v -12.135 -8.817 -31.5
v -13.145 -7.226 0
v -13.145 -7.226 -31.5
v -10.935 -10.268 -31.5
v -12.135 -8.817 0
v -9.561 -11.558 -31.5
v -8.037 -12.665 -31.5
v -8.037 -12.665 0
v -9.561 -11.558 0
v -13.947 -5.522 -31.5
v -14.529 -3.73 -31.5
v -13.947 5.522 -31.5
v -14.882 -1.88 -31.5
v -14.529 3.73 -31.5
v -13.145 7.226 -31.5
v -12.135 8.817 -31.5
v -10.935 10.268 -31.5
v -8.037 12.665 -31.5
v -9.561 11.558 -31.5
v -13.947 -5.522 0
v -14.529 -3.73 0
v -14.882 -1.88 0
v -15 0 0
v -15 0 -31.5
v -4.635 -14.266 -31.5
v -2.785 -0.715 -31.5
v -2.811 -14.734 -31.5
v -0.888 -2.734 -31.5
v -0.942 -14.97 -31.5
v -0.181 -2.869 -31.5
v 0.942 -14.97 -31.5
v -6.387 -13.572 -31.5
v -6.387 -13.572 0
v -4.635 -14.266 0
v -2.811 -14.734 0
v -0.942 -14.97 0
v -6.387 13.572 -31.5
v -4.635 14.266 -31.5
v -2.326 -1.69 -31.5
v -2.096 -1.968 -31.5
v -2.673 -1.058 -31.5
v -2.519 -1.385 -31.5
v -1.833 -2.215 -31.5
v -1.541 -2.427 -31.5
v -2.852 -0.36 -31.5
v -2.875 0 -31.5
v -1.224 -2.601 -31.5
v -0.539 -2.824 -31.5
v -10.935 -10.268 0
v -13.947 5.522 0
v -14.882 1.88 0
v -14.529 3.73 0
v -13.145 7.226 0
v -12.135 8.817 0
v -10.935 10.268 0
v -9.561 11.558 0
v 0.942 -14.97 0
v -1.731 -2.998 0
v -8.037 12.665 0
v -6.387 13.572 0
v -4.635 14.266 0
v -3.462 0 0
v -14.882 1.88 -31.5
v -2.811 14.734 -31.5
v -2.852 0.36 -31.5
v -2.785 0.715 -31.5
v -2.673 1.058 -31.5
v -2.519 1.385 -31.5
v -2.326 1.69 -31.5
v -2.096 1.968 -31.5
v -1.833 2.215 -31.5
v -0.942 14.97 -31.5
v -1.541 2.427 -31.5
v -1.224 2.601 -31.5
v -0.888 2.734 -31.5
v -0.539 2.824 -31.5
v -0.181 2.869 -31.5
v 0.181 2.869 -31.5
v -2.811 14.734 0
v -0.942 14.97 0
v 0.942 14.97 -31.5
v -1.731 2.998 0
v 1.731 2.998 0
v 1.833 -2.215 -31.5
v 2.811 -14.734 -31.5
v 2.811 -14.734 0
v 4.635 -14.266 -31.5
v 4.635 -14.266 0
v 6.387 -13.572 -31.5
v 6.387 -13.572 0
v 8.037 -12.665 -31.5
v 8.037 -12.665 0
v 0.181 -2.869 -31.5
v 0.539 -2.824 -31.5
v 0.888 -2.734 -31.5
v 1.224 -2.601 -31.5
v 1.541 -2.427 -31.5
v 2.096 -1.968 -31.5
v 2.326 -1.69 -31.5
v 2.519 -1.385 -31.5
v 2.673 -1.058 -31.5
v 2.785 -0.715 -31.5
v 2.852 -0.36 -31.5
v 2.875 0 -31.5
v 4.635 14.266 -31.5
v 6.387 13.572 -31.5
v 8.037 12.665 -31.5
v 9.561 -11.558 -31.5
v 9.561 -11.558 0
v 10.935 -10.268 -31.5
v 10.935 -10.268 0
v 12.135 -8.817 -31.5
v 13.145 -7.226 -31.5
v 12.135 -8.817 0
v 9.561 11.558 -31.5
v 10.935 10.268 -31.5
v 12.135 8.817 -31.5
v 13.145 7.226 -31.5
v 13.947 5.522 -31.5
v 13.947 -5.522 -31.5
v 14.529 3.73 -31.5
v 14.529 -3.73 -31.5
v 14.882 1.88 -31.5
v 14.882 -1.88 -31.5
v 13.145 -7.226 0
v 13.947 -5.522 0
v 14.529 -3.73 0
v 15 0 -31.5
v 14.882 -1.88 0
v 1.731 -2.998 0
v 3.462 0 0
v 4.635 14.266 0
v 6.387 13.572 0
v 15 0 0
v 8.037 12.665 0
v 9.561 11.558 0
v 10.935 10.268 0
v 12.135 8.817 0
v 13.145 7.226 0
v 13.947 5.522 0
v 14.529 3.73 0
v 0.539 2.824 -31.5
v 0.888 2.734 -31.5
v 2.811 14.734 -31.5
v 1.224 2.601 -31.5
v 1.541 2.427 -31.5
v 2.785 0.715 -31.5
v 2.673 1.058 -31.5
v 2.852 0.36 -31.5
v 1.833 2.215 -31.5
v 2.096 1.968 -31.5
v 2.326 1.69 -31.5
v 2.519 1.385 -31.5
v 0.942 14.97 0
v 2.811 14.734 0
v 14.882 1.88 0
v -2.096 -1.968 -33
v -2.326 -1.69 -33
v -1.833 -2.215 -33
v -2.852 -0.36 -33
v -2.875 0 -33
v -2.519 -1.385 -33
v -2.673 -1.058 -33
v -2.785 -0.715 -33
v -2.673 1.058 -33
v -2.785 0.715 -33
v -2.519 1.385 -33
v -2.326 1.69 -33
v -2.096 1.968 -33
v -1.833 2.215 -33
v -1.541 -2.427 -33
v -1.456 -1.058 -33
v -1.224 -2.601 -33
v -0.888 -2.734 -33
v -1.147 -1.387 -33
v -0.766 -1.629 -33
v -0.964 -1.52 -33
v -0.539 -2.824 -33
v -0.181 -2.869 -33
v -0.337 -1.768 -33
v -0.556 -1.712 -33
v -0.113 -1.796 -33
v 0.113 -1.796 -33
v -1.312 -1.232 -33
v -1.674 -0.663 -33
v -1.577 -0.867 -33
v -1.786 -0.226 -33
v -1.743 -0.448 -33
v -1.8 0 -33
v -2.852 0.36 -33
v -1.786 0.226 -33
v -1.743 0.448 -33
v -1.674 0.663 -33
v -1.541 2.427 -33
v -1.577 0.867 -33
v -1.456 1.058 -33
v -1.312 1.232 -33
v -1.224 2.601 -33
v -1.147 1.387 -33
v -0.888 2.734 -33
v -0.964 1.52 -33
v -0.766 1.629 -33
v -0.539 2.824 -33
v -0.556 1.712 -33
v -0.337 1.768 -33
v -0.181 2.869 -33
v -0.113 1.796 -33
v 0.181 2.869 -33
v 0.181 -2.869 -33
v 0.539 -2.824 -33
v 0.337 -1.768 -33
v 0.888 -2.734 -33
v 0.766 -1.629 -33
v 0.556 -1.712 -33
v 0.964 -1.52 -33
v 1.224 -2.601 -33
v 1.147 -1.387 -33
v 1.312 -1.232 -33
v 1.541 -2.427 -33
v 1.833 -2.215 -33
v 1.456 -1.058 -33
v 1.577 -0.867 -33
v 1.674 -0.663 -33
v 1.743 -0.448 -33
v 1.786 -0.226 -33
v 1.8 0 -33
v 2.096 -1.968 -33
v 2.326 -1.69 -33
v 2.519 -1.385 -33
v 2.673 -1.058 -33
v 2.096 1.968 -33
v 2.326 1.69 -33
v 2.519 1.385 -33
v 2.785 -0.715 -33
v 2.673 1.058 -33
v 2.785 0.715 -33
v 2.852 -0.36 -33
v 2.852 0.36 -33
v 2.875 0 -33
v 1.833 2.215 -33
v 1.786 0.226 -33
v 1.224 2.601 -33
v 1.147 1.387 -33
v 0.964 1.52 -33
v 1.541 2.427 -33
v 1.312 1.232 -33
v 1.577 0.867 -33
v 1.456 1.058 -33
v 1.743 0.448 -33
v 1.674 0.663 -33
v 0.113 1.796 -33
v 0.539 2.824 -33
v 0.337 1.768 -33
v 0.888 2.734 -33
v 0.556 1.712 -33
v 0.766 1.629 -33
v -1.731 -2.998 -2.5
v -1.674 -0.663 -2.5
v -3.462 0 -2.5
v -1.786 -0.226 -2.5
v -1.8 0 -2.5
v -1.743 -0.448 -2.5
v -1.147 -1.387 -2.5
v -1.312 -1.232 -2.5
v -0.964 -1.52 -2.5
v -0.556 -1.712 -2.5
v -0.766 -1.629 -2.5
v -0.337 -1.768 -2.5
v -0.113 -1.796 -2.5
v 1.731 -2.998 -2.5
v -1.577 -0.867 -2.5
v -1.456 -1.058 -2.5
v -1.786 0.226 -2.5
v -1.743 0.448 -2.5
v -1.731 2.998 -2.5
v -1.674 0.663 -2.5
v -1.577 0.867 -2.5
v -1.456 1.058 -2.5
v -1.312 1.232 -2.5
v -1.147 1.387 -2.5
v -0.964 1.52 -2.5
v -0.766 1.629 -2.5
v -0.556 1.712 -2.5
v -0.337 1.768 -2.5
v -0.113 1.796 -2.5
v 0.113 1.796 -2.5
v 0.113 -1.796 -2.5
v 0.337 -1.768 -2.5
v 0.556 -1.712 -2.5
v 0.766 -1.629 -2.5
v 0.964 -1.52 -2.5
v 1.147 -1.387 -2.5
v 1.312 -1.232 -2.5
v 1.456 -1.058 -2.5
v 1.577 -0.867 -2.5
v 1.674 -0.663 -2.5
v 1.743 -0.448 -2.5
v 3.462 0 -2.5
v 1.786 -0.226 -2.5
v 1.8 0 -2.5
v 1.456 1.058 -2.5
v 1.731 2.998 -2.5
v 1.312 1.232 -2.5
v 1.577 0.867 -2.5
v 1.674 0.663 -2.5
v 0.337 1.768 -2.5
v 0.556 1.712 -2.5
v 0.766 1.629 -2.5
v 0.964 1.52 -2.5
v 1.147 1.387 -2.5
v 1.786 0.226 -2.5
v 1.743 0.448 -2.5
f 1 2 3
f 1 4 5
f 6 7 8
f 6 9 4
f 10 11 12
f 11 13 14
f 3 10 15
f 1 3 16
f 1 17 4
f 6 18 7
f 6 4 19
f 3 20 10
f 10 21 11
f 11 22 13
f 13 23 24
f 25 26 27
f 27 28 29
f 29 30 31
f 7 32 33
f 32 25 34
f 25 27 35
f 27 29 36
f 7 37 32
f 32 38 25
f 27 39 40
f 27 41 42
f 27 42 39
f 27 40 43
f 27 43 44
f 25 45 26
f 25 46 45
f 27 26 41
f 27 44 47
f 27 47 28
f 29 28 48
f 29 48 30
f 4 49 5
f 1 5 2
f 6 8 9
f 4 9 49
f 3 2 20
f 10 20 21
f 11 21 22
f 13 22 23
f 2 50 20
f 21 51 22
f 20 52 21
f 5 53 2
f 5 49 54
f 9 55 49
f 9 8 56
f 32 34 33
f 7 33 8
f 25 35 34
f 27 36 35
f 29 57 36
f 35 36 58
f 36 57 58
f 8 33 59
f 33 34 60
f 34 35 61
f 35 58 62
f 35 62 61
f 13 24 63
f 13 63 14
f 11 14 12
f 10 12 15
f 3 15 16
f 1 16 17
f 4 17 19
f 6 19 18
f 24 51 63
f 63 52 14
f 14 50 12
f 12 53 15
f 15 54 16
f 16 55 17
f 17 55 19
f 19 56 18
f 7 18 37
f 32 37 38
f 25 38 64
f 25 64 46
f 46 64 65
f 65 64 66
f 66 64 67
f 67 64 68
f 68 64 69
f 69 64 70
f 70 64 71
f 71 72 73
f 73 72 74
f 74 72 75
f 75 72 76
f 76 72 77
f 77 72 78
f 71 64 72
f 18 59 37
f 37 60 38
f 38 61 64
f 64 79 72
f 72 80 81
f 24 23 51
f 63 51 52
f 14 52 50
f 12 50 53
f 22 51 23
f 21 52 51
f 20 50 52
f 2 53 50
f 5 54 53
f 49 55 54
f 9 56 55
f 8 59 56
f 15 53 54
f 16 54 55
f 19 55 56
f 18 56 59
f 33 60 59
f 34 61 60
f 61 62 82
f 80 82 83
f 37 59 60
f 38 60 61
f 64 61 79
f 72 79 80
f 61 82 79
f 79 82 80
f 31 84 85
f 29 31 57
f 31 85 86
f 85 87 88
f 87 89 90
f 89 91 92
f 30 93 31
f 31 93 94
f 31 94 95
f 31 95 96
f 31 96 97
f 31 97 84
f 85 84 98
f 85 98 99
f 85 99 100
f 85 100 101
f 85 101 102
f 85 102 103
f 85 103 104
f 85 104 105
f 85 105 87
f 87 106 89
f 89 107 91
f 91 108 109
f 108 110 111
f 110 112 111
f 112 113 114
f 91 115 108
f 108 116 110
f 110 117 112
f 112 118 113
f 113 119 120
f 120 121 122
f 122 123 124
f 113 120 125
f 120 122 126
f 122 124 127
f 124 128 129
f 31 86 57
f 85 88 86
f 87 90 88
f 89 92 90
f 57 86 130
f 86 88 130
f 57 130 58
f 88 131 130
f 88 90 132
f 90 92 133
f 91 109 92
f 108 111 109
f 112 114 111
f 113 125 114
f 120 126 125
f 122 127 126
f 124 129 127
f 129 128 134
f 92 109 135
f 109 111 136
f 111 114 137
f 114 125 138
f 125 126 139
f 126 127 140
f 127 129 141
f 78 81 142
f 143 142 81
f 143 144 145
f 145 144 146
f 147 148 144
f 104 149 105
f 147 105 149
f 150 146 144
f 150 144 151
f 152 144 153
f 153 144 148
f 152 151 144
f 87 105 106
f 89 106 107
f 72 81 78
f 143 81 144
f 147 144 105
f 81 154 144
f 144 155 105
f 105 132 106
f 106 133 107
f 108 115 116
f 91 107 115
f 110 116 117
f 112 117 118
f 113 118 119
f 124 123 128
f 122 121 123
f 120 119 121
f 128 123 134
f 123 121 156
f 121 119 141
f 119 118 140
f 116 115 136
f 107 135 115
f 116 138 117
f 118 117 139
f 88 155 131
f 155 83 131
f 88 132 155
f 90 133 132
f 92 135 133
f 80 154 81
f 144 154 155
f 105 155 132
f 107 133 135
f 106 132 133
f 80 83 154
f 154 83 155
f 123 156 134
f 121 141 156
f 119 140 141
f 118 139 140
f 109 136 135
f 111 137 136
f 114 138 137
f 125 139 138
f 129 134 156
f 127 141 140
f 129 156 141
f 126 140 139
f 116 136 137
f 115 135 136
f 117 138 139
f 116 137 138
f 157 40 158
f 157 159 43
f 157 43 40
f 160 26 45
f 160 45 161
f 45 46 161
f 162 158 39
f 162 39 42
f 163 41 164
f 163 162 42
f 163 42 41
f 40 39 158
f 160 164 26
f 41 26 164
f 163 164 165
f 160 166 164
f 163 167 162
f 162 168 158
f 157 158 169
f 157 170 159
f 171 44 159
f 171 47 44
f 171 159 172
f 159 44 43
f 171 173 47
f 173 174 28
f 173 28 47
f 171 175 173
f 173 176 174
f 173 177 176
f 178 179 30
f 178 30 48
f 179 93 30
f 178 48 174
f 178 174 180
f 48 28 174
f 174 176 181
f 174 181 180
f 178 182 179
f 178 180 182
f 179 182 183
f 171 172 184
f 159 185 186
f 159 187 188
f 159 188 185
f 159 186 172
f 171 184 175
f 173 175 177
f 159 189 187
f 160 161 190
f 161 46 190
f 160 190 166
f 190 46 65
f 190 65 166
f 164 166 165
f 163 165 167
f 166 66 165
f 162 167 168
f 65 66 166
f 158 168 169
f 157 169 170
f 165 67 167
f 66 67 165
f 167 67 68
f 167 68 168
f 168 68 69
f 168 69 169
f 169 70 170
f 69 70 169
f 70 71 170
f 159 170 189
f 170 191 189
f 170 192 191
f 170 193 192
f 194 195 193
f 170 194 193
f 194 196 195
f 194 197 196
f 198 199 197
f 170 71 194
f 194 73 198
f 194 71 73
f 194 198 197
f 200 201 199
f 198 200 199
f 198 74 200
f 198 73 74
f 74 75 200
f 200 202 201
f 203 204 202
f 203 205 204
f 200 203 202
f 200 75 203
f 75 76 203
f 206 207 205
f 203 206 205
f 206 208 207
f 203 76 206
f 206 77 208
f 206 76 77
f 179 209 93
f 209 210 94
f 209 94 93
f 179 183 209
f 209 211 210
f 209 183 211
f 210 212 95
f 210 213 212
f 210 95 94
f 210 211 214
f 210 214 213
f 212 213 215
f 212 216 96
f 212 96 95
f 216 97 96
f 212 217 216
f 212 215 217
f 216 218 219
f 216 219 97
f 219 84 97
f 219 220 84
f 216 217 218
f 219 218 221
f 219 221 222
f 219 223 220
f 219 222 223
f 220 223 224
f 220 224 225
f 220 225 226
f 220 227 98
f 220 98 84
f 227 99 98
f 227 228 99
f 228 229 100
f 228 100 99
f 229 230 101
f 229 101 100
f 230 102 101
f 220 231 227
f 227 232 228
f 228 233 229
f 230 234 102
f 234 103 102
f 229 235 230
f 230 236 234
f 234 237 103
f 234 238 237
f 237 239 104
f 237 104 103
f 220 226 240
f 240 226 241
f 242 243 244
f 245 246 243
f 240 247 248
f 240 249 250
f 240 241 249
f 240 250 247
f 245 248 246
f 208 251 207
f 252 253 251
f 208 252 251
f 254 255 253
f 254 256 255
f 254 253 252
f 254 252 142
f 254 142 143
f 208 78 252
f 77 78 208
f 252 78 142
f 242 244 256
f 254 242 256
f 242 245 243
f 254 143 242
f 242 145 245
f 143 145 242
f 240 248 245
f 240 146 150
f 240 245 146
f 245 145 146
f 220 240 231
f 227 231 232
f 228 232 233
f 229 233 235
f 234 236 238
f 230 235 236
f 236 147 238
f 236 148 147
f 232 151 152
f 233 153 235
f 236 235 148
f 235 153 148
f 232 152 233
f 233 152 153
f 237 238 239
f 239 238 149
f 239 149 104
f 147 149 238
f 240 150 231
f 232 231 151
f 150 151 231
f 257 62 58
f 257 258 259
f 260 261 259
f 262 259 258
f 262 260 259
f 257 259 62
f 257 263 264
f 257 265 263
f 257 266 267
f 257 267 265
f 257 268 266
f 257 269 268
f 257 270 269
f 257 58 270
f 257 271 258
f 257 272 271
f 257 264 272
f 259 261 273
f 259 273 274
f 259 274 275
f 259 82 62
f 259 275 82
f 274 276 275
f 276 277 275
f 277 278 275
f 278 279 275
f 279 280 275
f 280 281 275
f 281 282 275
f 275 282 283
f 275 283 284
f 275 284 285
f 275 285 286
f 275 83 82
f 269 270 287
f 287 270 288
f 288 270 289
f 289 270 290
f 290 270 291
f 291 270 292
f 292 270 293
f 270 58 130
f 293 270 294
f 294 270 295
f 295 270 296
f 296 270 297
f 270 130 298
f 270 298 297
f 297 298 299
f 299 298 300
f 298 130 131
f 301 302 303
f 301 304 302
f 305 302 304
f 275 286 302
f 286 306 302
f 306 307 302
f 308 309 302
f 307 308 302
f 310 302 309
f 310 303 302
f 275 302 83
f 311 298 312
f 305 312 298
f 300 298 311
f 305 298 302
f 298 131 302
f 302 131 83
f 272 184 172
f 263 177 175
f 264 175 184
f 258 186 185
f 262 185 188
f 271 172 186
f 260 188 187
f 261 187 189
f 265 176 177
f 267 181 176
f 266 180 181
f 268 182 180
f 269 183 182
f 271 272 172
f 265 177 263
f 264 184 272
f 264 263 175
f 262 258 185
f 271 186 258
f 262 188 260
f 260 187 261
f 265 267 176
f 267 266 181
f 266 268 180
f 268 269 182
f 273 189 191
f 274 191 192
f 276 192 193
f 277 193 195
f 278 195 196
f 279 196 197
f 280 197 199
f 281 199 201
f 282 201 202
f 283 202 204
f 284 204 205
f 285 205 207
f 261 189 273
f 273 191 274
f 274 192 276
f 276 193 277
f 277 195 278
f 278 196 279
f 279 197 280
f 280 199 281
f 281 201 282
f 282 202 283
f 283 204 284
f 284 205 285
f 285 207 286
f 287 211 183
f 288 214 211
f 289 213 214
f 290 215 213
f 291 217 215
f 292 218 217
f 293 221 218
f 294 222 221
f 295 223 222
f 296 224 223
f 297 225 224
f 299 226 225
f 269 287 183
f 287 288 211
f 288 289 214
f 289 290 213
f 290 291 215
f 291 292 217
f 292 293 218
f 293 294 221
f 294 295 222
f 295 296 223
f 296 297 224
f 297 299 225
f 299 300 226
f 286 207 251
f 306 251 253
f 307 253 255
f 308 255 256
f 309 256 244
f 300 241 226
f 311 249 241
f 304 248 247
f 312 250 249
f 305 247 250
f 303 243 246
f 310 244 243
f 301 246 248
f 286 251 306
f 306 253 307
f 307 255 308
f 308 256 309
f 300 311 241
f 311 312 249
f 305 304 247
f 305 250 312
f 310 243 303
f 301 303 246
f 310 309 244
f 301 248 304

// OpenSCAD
$fn = 50;

difference() {
	union() {
		translate(v = [0, 0, -31.5]) {
			cylinder(h = 31.5, r = 15.0);
		}
		#translate(v = [0, 0, -33.0]) {
			cylinder(h = 33, r = 2.875);
		}
	}
	union() {
		translate(v = [0, 0, 0]) {
			rotate(a = [0, 0, 0]) {
				difference() {
					union() {
						translate(v = [0, 0, -2.5]) {
							linear_extrude(height = 2.5) {
								polygon(points = [[3.4619999999999997, 0.0], [1.7310000000000003, 2.9981799479017264], [-1.7309999999999992, 2.9981799479017264], [-3.4619999999999997, 4.2397272186481365e-16], [-1.7310000000000014, -2.998179947901726], [1.7309999999999977, -2.9981799479017277]]);
							}
						}
					}
					union();
				}
			}
		}
		#translate(v = [0, 0, -100.0]) {
			cylinder(h = 200, r = 1.8);
		}
	}
}
